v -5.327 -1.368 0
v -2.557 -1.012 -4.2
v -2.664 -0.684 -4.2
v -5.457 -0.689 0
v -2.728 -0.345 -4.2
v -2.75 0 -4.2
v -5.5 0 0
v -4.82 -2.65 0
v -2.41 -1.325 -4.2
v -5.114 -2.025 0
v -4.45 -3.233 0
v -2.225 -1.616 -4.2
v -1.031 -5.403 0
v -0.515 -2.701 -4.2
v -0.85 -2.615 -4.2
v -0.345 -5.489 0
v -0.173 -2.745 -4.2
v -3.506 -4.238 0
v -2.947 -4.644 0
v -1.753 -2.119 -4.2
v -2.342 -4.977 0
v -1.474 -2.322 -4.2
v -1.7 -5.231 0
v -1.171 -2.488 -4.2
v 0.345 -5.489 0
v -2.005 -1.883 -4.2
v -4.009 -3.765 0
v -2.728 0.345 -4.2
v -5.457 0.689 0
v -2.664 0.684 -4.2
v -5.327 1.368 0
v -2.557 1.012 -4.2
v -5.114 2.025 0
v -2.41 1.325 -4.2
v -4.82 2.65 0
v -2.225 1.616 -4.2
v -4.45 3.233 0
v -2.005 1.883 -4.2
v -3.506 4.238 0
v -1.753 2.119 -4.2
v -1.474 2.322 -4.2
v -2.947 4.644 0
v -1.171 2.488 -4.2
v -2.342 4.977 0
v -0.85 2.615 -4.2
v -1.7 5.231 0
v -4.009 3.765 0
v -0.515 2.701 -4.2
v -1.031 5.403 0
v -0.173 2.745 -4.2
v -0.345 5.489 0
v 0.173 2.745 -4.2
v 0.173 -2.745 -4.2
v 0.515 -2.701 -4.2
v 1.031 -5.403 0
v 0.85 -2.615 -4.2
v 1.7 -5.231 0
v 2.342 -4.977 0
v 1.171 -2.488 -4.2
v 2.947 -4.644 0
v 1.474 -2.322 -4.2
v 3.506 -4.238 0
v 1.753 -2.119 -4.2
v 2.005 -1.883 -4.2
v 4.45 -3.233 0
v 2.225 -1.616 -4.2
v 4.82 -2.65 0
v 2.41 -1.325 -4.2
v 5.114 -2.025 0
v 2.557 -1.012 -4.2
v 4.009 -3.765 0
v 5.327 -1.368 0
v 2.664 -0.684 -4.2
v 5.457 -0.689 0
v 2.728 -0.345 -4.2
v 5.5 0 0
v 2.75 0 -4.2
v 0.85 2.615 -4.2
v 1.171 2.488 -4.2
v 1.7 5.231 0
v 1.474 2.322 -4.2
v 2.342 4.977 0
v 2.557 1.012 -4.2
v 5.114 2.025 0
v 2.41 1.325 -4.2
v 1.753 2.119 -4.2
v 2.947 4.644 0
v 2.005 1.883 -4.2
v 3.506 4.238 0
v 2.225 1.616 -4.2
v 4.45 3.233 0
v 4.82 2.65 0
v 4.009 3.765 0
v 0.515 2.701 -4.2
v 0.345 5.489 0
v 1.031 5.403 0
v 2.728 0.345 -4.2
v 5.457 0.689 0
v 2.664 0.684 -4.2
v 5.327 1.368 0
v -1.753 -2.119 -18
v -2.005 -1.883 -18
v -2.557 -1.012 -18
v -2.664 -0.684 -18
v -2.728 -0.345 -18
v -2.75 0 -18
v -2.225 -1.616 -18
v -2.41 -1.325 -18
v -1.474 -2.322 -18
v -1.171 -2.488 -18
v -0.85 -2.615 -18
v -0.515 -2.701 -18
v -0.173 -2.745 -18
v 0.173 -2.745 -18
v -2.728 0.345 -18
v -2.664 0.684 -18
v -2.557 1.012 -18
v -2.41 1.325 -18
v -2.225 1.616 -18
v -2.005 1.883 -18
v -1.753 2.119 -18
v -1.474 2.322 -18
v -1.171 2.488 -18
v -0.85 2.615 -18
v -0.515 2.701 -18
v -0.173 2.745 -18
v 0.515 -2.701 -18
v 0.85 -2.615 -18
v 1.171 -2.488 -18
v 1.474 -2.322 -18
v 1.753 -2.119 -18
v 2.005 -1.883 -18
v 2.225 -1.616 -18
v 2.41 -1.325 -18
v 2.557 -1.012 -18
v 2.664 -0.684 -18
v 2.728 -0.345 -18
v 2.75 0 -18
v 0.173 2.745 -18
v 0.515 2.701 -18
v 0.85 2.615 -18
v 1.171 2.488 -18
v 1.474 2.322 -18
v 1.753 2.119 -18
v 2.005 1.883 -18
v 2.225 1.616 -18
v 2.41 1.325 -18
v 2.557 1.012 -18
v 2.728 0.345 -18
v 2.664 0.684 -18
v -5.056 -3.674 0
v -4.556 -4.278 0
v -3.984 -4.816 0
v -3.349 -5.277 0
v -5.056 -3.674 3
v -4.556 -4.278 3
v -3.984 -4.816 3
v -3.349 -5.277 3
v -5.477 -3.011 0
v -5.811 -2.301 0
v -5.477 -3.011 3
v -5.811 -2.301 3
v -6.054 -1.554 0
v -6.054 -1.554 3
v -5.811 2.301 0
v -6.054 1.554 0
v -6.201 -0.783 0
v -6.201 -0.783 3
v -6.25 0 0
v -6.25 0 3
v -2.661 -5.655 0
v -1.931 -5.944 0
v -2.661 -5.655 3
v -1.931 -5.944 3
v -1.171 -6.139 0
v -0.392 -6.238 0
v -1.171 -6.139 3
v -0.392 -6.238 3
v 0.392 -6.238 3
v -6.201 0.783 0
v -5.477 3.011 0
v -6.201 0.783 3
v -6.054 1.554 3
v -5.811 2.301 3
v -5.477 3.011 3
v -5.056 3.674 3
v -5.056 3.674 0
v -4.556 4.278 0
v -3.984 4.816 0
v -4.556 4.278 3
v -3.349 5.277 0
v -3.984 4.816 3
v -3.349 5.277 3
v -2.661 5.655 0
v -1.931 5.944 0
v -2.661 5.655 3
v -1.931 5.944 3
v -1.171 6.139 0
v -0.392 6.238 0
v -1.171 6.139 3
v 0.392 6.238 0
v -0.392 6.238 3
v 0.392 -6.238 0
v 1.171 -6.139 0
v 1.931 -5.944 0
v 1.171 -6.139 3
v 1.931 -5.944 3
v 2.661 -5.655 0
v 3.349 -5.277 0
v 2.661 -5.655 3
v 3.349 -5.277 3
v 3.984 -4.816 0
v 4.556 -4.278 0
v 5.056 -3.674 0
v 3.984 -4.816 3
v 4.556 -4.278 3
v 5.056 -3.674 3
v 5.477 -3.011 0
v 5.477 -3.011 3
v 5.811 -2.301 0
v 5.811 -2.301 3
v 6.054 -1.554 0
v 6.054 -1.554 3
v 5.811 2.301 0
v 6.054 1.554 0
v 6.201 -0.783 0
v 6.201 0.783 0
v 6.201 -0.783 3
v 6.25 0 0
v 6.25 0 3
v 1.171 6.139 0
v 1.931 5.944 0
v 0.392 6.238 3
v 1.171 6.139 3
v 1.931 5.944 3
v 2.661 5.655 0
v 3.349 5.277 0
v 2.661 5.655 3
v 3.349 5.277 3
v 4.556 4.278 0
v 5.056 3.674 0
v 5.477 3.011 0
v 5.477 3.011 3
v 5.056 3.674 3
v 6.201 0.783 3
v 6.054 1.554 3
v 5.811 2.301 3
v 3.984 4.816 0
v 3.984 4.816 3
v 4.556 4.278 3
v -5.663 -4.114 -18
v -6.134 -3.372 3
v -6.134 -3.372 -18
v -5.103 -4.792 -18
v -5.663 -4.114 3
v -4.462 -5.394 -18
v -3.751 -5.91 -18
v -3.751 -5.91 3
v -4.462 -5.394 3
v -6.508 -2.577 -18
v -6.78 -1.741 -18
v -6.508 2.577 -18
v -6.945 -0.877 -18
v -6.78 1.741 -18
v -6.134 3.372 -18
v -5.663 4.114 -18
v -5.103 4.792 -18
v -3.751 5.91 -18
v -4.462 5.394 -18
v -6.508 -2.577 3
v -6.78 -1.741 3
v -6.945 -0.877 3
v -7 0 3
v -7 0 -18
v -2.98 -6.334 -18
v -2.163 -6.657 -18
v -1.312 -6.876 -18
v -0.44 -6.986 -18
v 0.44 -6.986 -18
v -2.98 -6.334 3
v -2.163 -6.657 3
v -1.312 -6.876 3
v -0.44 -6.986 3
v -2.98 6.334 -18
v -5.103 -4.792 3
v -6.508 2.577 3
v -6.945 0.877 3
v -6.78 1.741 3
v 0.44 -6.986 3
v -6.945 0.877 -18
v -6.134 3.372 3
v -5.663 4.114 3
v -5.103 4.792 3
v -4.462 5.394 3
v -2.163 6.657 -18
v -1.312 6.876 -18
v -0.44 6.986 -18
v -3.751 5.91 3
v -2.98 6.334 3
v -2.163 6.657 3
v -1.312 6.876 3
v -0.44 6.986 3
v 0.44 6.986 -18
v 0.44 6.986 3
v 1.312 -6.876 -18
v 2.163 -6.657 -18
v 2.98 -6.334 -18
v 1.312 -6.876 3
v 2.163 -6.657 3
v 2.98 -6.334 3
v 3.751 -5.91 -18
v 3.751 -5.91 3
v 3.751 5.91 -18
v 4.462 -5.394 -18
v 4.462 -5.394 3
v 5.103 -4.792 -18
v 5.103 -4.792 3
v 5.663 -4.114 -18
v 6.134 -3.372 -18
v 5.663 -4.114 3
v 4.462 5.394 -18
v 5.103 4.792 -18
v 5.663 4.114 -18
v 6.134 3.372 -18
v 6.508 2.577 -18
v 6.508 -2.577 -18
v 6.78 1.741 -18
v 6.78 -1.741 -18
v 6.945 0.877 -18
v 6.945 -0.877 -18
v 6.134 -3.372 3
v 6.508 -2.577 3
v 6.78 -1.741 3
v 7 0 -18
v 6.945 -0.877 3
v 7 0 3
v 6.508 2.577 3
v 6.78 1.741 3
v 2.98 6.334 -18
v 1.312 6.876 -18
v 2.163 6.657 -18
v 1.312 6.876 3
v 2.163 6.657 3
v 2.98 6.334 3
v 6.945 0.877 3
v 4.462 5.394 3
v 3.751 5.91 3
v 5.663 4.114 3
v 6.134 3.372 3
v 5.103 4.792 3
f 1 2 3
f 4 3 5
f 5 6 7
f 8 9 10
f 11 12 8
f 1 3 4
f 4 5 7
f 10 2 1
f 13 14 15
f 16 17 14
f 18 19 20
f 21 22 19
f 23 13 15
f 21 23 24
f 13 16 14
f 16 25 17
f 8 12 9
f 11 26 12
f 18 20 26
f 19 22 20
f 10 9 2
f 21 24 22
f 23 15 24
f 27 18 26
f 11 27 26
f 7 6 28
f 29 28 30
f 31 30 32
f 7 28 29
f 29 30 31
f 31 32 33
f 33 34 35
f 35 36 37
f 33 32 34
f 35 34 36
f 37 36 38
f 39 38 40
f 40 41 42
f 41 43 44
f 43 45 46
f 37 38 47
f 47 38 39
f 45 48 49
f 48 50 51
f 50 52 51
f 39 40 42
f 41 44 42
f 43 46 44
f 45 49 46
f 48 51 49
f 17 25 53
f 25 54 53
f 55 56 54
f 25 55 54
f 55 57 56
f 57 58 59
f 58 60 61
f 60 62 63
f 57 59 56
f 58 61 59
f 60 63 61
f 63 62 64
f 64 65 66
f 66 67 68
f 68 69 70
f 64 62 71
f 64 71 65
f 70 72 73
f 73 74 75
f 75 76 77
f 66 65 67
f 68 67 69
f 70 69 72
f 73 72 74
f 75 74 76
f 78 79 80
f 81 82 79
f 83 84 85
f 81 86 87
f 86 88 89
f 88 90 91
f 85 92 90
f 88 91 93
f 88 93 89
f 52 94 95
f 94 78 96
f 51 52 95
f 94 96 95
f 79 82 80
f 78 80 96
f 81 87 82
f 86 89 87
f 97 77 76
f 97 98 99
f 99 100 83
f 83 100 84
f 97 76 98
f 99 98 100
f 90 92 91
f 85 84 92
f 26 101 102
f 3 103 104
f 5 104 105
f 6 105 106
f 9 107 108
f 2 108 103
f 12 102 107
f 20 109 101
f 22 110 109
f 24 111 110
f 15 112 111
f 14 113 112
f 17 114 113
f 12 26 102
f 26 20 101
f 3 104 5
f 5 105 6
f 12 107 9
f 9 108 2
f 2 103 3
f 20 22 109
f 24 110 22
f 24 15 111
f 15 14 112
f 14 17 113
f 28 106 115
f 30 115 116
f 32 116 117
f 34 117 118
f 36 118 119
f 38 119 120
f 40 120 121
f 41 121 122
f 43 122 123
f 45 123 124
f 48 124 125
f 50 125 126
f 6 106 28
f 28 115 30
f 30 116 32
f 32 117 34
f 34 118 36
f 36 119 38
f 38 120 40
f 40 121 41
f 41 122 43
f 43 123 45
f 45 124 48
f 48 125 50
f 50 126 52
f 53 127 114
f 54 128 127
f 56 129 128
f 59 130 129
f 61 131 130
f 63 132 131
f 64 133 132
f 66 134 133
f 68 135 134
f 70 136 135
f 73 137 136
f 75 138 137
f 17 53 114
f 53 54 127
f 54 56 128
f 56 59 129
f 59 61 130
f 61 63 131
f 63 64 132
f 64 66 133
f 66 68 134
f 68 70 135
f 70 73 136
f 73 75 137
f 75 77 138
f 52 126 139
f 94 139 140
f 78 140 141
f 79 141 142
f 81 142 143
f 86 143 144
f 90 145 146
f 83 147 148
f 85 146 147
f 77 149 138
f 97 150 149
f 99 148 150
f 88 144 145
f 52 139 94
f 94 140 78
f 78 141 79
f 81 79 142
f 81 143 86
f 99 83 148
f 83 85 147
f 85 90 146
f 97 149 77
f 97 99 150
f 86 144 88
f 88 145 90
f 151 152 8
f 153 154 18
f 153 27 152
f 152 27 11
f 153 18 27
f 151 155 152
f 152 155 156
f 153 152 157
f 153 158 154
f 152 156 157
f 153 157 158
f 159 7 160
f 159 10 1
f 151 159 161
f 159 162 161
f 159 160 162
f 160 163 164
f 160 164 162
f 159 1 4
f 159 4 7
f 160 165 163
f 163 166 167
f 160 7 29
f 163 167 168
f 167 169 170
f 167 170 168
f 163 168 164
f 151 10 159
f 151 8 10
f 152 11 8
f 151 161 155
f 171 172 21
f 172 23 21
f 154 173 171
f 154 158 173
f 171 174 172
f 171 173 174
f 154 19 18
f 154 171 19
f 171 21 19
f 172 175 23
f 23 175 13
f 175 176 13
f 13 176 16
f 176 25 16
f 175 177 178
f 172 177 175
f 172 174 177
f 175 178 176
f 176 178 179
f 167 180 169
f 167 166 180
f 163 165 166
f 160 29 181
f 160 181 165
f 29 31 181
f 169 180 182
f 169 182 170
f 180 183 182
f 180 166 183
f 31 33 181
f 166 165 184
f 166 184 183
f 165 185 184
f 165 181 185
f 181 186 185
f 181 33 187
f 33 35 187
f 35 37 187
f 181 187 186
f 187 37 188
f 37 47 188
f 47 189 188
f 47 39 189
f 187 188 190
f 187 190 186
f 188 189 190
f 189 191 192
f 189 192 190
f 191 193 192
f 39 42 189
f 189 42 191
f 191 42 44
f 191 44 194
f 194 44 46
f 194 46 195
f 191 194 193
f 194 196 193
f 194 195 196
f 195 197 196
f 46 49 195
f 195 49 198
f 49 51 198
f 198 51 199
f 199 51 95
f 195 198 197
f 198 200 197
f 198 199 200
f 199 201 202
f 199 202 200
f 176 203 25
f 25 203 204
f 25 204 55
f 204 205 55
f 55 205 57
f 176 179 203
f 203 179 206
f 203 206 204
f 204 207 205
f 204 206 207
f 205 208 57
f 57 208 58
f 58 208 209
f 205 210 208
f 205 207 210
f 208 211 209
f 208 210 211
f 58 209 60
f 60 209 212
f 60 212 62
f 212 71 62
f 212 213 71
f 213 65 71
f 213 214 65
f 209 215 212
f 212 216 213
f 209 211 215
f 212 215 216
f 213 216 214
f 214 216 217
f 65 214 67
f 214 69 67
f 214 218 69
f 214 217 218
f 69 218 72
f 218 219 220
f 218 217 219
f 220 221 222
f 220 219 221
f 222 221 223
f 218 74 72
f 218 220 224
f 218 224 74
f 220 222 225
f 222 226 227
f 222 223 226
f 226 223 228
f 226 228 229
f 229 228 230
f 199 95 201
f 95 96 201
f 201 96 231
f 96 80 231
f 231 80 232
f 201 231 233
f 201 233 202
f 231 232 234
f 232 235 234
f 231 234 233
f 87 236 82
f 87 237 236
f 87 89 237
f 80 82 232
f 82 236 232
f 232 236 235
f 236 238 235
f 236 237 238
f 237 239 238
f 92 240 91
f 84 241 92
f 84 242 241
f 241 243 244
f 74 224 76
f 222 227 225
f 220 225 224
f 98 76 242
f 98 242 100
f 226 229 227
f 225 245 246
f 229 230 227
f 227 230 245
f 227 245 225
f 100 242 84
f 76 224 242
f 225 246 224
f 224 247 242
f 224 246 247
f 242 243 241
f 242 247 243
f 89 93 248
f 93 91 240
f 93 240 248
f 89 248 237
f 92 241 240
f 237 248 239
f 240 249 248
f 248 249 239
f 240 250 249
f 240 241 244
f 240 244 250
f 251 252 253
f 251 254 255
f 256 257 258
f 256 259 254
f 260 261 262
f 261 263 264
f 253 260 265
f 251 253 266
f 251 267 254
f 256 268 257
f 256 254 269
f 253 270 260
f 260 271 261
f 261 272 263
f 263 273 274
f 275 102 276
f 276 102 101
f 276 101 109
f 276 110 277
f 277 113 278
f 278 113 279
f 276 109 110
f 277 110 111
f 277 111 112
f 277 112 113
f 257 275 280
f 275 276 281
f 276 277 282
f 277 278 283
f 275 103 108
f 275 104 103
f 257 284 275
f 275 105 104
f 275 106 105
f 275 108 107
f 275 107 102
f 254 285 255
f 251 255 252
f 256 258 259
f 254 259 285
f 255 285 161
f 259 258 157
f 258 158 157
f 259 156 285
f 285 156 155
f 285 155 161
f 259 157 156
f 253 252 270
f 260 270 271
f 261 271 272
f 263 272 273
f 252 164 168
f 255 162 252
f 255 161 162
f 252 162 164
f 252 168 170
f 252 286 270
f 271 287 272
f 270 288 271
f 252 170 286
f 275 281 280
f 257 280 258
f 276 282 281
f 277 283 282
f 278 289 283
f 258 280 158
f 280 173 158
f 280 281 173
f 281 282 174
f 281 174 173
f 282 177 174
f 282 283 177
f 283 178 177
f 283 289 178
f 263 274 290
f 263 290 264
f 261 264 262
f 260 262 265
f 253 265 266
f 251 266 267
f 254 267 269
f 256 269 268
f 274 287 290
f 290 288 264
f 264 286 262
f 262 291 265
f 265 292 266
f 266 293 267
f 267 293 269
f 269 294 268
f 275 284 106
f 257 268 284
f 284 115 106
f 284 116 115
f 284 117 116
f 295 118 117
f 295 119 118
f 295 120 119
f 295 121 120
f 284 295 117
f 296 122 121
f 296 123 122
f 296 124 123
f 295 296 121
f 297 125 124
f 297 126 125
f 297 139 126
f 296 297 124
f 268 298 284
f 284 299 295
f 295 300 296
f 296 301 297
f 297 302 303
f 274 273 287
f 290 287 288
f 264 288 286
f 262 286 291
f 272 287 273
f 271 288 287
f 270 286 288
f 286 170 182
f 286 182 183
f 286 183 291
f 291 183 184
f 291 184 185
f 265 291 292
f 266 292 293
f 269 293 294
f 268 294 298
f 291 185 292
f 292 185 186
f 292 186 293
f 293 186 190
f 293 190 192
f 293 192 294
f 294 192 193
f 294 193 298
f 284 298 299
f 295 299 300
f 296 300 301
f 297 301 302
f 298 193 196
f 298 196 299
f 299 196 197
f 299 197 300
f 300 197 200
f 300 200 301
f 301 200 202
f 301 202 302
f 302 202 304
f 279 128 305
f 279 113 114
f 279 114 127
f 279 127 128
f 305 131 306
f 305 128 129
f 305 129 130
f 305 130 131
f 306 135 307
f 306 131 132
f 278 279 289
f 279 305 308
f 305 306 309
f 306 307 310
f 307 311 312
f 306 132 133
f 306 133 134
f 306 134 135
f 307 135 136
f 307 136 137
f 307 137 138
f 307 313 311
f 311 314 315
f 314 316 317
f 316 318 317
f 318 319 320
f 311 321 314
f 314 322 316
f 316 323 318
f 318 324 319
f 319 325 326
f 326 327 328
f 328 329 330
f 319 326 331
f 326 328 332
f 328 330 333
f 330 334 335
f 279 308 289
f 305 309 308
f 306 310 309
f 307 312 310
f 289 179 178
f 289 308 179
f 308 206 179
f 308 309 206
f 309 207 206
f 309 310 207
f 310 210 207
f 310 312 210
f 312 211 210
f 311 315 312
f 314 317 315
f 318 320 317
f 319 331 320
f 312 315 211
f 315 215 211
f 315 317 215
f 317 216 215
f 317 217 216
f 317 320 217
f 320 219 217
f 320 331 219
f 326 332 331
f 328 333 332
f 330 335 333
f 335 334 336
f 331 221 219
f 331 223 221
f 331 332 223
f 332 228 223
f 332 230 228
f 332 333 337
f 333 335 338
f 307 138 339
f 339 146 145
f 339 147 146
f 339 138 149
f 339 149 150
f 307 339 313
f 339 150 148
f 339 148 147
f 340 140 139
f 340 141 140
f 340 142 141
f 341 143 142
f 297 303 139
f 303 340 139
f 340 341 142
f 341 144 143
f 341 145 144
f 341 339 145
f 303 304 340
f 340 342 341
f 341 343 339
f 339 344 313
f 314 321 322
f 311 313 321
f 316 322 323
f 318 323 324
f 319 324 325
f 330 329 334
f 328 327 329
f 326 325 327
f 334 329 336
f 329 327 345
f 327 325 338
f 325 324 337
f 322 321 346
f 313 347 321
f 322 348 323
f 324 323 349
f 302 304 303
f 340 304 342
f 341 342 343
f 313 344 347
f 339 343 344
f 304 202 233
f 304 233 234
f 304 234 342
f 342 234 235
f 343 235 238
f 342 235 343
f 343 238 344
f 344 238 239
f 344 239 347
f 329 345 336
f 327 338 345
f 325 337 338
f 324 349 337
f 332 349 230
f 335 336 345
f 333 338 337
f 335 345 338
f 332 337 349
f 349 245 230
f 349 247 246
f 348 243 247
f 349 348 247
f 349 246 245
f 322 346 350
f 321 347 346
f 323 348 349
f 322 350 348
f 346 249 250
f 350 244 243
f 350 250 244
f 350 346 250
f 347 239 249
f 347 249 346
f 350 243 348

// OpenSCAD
$fn = 50;

difference() {
	union() {
		translate(v = [0, 0, -18.0]) {
			cylinder(h = 21, r = 7.0);
		}
	}
	union() {
		translate(v = [0, 0, 0]) {
			rotate(a = [0, 0, 0]) {
				difference() {
					union() {
						translate(v = [0, 0, -21.0]) {
							cylinder(h = 21, r = 2.25);
						}
						translate(v = [0, 0, -4.2]) {
							cylinder(h = 4.2, r1 = 2.75, r2 = 5.5);
						}
						translate(v = [0, 0, -21.0]) {
							cylinder(h = 21, r = 2.75);
						}
						translate(v = [0, 0, -21.0]) {
							cylinder(h = 21, r = 2.25);
						}
					}
					union();
				}
			}
		}
		#cylinder(h = 3, r = 6.25);
	}
}
